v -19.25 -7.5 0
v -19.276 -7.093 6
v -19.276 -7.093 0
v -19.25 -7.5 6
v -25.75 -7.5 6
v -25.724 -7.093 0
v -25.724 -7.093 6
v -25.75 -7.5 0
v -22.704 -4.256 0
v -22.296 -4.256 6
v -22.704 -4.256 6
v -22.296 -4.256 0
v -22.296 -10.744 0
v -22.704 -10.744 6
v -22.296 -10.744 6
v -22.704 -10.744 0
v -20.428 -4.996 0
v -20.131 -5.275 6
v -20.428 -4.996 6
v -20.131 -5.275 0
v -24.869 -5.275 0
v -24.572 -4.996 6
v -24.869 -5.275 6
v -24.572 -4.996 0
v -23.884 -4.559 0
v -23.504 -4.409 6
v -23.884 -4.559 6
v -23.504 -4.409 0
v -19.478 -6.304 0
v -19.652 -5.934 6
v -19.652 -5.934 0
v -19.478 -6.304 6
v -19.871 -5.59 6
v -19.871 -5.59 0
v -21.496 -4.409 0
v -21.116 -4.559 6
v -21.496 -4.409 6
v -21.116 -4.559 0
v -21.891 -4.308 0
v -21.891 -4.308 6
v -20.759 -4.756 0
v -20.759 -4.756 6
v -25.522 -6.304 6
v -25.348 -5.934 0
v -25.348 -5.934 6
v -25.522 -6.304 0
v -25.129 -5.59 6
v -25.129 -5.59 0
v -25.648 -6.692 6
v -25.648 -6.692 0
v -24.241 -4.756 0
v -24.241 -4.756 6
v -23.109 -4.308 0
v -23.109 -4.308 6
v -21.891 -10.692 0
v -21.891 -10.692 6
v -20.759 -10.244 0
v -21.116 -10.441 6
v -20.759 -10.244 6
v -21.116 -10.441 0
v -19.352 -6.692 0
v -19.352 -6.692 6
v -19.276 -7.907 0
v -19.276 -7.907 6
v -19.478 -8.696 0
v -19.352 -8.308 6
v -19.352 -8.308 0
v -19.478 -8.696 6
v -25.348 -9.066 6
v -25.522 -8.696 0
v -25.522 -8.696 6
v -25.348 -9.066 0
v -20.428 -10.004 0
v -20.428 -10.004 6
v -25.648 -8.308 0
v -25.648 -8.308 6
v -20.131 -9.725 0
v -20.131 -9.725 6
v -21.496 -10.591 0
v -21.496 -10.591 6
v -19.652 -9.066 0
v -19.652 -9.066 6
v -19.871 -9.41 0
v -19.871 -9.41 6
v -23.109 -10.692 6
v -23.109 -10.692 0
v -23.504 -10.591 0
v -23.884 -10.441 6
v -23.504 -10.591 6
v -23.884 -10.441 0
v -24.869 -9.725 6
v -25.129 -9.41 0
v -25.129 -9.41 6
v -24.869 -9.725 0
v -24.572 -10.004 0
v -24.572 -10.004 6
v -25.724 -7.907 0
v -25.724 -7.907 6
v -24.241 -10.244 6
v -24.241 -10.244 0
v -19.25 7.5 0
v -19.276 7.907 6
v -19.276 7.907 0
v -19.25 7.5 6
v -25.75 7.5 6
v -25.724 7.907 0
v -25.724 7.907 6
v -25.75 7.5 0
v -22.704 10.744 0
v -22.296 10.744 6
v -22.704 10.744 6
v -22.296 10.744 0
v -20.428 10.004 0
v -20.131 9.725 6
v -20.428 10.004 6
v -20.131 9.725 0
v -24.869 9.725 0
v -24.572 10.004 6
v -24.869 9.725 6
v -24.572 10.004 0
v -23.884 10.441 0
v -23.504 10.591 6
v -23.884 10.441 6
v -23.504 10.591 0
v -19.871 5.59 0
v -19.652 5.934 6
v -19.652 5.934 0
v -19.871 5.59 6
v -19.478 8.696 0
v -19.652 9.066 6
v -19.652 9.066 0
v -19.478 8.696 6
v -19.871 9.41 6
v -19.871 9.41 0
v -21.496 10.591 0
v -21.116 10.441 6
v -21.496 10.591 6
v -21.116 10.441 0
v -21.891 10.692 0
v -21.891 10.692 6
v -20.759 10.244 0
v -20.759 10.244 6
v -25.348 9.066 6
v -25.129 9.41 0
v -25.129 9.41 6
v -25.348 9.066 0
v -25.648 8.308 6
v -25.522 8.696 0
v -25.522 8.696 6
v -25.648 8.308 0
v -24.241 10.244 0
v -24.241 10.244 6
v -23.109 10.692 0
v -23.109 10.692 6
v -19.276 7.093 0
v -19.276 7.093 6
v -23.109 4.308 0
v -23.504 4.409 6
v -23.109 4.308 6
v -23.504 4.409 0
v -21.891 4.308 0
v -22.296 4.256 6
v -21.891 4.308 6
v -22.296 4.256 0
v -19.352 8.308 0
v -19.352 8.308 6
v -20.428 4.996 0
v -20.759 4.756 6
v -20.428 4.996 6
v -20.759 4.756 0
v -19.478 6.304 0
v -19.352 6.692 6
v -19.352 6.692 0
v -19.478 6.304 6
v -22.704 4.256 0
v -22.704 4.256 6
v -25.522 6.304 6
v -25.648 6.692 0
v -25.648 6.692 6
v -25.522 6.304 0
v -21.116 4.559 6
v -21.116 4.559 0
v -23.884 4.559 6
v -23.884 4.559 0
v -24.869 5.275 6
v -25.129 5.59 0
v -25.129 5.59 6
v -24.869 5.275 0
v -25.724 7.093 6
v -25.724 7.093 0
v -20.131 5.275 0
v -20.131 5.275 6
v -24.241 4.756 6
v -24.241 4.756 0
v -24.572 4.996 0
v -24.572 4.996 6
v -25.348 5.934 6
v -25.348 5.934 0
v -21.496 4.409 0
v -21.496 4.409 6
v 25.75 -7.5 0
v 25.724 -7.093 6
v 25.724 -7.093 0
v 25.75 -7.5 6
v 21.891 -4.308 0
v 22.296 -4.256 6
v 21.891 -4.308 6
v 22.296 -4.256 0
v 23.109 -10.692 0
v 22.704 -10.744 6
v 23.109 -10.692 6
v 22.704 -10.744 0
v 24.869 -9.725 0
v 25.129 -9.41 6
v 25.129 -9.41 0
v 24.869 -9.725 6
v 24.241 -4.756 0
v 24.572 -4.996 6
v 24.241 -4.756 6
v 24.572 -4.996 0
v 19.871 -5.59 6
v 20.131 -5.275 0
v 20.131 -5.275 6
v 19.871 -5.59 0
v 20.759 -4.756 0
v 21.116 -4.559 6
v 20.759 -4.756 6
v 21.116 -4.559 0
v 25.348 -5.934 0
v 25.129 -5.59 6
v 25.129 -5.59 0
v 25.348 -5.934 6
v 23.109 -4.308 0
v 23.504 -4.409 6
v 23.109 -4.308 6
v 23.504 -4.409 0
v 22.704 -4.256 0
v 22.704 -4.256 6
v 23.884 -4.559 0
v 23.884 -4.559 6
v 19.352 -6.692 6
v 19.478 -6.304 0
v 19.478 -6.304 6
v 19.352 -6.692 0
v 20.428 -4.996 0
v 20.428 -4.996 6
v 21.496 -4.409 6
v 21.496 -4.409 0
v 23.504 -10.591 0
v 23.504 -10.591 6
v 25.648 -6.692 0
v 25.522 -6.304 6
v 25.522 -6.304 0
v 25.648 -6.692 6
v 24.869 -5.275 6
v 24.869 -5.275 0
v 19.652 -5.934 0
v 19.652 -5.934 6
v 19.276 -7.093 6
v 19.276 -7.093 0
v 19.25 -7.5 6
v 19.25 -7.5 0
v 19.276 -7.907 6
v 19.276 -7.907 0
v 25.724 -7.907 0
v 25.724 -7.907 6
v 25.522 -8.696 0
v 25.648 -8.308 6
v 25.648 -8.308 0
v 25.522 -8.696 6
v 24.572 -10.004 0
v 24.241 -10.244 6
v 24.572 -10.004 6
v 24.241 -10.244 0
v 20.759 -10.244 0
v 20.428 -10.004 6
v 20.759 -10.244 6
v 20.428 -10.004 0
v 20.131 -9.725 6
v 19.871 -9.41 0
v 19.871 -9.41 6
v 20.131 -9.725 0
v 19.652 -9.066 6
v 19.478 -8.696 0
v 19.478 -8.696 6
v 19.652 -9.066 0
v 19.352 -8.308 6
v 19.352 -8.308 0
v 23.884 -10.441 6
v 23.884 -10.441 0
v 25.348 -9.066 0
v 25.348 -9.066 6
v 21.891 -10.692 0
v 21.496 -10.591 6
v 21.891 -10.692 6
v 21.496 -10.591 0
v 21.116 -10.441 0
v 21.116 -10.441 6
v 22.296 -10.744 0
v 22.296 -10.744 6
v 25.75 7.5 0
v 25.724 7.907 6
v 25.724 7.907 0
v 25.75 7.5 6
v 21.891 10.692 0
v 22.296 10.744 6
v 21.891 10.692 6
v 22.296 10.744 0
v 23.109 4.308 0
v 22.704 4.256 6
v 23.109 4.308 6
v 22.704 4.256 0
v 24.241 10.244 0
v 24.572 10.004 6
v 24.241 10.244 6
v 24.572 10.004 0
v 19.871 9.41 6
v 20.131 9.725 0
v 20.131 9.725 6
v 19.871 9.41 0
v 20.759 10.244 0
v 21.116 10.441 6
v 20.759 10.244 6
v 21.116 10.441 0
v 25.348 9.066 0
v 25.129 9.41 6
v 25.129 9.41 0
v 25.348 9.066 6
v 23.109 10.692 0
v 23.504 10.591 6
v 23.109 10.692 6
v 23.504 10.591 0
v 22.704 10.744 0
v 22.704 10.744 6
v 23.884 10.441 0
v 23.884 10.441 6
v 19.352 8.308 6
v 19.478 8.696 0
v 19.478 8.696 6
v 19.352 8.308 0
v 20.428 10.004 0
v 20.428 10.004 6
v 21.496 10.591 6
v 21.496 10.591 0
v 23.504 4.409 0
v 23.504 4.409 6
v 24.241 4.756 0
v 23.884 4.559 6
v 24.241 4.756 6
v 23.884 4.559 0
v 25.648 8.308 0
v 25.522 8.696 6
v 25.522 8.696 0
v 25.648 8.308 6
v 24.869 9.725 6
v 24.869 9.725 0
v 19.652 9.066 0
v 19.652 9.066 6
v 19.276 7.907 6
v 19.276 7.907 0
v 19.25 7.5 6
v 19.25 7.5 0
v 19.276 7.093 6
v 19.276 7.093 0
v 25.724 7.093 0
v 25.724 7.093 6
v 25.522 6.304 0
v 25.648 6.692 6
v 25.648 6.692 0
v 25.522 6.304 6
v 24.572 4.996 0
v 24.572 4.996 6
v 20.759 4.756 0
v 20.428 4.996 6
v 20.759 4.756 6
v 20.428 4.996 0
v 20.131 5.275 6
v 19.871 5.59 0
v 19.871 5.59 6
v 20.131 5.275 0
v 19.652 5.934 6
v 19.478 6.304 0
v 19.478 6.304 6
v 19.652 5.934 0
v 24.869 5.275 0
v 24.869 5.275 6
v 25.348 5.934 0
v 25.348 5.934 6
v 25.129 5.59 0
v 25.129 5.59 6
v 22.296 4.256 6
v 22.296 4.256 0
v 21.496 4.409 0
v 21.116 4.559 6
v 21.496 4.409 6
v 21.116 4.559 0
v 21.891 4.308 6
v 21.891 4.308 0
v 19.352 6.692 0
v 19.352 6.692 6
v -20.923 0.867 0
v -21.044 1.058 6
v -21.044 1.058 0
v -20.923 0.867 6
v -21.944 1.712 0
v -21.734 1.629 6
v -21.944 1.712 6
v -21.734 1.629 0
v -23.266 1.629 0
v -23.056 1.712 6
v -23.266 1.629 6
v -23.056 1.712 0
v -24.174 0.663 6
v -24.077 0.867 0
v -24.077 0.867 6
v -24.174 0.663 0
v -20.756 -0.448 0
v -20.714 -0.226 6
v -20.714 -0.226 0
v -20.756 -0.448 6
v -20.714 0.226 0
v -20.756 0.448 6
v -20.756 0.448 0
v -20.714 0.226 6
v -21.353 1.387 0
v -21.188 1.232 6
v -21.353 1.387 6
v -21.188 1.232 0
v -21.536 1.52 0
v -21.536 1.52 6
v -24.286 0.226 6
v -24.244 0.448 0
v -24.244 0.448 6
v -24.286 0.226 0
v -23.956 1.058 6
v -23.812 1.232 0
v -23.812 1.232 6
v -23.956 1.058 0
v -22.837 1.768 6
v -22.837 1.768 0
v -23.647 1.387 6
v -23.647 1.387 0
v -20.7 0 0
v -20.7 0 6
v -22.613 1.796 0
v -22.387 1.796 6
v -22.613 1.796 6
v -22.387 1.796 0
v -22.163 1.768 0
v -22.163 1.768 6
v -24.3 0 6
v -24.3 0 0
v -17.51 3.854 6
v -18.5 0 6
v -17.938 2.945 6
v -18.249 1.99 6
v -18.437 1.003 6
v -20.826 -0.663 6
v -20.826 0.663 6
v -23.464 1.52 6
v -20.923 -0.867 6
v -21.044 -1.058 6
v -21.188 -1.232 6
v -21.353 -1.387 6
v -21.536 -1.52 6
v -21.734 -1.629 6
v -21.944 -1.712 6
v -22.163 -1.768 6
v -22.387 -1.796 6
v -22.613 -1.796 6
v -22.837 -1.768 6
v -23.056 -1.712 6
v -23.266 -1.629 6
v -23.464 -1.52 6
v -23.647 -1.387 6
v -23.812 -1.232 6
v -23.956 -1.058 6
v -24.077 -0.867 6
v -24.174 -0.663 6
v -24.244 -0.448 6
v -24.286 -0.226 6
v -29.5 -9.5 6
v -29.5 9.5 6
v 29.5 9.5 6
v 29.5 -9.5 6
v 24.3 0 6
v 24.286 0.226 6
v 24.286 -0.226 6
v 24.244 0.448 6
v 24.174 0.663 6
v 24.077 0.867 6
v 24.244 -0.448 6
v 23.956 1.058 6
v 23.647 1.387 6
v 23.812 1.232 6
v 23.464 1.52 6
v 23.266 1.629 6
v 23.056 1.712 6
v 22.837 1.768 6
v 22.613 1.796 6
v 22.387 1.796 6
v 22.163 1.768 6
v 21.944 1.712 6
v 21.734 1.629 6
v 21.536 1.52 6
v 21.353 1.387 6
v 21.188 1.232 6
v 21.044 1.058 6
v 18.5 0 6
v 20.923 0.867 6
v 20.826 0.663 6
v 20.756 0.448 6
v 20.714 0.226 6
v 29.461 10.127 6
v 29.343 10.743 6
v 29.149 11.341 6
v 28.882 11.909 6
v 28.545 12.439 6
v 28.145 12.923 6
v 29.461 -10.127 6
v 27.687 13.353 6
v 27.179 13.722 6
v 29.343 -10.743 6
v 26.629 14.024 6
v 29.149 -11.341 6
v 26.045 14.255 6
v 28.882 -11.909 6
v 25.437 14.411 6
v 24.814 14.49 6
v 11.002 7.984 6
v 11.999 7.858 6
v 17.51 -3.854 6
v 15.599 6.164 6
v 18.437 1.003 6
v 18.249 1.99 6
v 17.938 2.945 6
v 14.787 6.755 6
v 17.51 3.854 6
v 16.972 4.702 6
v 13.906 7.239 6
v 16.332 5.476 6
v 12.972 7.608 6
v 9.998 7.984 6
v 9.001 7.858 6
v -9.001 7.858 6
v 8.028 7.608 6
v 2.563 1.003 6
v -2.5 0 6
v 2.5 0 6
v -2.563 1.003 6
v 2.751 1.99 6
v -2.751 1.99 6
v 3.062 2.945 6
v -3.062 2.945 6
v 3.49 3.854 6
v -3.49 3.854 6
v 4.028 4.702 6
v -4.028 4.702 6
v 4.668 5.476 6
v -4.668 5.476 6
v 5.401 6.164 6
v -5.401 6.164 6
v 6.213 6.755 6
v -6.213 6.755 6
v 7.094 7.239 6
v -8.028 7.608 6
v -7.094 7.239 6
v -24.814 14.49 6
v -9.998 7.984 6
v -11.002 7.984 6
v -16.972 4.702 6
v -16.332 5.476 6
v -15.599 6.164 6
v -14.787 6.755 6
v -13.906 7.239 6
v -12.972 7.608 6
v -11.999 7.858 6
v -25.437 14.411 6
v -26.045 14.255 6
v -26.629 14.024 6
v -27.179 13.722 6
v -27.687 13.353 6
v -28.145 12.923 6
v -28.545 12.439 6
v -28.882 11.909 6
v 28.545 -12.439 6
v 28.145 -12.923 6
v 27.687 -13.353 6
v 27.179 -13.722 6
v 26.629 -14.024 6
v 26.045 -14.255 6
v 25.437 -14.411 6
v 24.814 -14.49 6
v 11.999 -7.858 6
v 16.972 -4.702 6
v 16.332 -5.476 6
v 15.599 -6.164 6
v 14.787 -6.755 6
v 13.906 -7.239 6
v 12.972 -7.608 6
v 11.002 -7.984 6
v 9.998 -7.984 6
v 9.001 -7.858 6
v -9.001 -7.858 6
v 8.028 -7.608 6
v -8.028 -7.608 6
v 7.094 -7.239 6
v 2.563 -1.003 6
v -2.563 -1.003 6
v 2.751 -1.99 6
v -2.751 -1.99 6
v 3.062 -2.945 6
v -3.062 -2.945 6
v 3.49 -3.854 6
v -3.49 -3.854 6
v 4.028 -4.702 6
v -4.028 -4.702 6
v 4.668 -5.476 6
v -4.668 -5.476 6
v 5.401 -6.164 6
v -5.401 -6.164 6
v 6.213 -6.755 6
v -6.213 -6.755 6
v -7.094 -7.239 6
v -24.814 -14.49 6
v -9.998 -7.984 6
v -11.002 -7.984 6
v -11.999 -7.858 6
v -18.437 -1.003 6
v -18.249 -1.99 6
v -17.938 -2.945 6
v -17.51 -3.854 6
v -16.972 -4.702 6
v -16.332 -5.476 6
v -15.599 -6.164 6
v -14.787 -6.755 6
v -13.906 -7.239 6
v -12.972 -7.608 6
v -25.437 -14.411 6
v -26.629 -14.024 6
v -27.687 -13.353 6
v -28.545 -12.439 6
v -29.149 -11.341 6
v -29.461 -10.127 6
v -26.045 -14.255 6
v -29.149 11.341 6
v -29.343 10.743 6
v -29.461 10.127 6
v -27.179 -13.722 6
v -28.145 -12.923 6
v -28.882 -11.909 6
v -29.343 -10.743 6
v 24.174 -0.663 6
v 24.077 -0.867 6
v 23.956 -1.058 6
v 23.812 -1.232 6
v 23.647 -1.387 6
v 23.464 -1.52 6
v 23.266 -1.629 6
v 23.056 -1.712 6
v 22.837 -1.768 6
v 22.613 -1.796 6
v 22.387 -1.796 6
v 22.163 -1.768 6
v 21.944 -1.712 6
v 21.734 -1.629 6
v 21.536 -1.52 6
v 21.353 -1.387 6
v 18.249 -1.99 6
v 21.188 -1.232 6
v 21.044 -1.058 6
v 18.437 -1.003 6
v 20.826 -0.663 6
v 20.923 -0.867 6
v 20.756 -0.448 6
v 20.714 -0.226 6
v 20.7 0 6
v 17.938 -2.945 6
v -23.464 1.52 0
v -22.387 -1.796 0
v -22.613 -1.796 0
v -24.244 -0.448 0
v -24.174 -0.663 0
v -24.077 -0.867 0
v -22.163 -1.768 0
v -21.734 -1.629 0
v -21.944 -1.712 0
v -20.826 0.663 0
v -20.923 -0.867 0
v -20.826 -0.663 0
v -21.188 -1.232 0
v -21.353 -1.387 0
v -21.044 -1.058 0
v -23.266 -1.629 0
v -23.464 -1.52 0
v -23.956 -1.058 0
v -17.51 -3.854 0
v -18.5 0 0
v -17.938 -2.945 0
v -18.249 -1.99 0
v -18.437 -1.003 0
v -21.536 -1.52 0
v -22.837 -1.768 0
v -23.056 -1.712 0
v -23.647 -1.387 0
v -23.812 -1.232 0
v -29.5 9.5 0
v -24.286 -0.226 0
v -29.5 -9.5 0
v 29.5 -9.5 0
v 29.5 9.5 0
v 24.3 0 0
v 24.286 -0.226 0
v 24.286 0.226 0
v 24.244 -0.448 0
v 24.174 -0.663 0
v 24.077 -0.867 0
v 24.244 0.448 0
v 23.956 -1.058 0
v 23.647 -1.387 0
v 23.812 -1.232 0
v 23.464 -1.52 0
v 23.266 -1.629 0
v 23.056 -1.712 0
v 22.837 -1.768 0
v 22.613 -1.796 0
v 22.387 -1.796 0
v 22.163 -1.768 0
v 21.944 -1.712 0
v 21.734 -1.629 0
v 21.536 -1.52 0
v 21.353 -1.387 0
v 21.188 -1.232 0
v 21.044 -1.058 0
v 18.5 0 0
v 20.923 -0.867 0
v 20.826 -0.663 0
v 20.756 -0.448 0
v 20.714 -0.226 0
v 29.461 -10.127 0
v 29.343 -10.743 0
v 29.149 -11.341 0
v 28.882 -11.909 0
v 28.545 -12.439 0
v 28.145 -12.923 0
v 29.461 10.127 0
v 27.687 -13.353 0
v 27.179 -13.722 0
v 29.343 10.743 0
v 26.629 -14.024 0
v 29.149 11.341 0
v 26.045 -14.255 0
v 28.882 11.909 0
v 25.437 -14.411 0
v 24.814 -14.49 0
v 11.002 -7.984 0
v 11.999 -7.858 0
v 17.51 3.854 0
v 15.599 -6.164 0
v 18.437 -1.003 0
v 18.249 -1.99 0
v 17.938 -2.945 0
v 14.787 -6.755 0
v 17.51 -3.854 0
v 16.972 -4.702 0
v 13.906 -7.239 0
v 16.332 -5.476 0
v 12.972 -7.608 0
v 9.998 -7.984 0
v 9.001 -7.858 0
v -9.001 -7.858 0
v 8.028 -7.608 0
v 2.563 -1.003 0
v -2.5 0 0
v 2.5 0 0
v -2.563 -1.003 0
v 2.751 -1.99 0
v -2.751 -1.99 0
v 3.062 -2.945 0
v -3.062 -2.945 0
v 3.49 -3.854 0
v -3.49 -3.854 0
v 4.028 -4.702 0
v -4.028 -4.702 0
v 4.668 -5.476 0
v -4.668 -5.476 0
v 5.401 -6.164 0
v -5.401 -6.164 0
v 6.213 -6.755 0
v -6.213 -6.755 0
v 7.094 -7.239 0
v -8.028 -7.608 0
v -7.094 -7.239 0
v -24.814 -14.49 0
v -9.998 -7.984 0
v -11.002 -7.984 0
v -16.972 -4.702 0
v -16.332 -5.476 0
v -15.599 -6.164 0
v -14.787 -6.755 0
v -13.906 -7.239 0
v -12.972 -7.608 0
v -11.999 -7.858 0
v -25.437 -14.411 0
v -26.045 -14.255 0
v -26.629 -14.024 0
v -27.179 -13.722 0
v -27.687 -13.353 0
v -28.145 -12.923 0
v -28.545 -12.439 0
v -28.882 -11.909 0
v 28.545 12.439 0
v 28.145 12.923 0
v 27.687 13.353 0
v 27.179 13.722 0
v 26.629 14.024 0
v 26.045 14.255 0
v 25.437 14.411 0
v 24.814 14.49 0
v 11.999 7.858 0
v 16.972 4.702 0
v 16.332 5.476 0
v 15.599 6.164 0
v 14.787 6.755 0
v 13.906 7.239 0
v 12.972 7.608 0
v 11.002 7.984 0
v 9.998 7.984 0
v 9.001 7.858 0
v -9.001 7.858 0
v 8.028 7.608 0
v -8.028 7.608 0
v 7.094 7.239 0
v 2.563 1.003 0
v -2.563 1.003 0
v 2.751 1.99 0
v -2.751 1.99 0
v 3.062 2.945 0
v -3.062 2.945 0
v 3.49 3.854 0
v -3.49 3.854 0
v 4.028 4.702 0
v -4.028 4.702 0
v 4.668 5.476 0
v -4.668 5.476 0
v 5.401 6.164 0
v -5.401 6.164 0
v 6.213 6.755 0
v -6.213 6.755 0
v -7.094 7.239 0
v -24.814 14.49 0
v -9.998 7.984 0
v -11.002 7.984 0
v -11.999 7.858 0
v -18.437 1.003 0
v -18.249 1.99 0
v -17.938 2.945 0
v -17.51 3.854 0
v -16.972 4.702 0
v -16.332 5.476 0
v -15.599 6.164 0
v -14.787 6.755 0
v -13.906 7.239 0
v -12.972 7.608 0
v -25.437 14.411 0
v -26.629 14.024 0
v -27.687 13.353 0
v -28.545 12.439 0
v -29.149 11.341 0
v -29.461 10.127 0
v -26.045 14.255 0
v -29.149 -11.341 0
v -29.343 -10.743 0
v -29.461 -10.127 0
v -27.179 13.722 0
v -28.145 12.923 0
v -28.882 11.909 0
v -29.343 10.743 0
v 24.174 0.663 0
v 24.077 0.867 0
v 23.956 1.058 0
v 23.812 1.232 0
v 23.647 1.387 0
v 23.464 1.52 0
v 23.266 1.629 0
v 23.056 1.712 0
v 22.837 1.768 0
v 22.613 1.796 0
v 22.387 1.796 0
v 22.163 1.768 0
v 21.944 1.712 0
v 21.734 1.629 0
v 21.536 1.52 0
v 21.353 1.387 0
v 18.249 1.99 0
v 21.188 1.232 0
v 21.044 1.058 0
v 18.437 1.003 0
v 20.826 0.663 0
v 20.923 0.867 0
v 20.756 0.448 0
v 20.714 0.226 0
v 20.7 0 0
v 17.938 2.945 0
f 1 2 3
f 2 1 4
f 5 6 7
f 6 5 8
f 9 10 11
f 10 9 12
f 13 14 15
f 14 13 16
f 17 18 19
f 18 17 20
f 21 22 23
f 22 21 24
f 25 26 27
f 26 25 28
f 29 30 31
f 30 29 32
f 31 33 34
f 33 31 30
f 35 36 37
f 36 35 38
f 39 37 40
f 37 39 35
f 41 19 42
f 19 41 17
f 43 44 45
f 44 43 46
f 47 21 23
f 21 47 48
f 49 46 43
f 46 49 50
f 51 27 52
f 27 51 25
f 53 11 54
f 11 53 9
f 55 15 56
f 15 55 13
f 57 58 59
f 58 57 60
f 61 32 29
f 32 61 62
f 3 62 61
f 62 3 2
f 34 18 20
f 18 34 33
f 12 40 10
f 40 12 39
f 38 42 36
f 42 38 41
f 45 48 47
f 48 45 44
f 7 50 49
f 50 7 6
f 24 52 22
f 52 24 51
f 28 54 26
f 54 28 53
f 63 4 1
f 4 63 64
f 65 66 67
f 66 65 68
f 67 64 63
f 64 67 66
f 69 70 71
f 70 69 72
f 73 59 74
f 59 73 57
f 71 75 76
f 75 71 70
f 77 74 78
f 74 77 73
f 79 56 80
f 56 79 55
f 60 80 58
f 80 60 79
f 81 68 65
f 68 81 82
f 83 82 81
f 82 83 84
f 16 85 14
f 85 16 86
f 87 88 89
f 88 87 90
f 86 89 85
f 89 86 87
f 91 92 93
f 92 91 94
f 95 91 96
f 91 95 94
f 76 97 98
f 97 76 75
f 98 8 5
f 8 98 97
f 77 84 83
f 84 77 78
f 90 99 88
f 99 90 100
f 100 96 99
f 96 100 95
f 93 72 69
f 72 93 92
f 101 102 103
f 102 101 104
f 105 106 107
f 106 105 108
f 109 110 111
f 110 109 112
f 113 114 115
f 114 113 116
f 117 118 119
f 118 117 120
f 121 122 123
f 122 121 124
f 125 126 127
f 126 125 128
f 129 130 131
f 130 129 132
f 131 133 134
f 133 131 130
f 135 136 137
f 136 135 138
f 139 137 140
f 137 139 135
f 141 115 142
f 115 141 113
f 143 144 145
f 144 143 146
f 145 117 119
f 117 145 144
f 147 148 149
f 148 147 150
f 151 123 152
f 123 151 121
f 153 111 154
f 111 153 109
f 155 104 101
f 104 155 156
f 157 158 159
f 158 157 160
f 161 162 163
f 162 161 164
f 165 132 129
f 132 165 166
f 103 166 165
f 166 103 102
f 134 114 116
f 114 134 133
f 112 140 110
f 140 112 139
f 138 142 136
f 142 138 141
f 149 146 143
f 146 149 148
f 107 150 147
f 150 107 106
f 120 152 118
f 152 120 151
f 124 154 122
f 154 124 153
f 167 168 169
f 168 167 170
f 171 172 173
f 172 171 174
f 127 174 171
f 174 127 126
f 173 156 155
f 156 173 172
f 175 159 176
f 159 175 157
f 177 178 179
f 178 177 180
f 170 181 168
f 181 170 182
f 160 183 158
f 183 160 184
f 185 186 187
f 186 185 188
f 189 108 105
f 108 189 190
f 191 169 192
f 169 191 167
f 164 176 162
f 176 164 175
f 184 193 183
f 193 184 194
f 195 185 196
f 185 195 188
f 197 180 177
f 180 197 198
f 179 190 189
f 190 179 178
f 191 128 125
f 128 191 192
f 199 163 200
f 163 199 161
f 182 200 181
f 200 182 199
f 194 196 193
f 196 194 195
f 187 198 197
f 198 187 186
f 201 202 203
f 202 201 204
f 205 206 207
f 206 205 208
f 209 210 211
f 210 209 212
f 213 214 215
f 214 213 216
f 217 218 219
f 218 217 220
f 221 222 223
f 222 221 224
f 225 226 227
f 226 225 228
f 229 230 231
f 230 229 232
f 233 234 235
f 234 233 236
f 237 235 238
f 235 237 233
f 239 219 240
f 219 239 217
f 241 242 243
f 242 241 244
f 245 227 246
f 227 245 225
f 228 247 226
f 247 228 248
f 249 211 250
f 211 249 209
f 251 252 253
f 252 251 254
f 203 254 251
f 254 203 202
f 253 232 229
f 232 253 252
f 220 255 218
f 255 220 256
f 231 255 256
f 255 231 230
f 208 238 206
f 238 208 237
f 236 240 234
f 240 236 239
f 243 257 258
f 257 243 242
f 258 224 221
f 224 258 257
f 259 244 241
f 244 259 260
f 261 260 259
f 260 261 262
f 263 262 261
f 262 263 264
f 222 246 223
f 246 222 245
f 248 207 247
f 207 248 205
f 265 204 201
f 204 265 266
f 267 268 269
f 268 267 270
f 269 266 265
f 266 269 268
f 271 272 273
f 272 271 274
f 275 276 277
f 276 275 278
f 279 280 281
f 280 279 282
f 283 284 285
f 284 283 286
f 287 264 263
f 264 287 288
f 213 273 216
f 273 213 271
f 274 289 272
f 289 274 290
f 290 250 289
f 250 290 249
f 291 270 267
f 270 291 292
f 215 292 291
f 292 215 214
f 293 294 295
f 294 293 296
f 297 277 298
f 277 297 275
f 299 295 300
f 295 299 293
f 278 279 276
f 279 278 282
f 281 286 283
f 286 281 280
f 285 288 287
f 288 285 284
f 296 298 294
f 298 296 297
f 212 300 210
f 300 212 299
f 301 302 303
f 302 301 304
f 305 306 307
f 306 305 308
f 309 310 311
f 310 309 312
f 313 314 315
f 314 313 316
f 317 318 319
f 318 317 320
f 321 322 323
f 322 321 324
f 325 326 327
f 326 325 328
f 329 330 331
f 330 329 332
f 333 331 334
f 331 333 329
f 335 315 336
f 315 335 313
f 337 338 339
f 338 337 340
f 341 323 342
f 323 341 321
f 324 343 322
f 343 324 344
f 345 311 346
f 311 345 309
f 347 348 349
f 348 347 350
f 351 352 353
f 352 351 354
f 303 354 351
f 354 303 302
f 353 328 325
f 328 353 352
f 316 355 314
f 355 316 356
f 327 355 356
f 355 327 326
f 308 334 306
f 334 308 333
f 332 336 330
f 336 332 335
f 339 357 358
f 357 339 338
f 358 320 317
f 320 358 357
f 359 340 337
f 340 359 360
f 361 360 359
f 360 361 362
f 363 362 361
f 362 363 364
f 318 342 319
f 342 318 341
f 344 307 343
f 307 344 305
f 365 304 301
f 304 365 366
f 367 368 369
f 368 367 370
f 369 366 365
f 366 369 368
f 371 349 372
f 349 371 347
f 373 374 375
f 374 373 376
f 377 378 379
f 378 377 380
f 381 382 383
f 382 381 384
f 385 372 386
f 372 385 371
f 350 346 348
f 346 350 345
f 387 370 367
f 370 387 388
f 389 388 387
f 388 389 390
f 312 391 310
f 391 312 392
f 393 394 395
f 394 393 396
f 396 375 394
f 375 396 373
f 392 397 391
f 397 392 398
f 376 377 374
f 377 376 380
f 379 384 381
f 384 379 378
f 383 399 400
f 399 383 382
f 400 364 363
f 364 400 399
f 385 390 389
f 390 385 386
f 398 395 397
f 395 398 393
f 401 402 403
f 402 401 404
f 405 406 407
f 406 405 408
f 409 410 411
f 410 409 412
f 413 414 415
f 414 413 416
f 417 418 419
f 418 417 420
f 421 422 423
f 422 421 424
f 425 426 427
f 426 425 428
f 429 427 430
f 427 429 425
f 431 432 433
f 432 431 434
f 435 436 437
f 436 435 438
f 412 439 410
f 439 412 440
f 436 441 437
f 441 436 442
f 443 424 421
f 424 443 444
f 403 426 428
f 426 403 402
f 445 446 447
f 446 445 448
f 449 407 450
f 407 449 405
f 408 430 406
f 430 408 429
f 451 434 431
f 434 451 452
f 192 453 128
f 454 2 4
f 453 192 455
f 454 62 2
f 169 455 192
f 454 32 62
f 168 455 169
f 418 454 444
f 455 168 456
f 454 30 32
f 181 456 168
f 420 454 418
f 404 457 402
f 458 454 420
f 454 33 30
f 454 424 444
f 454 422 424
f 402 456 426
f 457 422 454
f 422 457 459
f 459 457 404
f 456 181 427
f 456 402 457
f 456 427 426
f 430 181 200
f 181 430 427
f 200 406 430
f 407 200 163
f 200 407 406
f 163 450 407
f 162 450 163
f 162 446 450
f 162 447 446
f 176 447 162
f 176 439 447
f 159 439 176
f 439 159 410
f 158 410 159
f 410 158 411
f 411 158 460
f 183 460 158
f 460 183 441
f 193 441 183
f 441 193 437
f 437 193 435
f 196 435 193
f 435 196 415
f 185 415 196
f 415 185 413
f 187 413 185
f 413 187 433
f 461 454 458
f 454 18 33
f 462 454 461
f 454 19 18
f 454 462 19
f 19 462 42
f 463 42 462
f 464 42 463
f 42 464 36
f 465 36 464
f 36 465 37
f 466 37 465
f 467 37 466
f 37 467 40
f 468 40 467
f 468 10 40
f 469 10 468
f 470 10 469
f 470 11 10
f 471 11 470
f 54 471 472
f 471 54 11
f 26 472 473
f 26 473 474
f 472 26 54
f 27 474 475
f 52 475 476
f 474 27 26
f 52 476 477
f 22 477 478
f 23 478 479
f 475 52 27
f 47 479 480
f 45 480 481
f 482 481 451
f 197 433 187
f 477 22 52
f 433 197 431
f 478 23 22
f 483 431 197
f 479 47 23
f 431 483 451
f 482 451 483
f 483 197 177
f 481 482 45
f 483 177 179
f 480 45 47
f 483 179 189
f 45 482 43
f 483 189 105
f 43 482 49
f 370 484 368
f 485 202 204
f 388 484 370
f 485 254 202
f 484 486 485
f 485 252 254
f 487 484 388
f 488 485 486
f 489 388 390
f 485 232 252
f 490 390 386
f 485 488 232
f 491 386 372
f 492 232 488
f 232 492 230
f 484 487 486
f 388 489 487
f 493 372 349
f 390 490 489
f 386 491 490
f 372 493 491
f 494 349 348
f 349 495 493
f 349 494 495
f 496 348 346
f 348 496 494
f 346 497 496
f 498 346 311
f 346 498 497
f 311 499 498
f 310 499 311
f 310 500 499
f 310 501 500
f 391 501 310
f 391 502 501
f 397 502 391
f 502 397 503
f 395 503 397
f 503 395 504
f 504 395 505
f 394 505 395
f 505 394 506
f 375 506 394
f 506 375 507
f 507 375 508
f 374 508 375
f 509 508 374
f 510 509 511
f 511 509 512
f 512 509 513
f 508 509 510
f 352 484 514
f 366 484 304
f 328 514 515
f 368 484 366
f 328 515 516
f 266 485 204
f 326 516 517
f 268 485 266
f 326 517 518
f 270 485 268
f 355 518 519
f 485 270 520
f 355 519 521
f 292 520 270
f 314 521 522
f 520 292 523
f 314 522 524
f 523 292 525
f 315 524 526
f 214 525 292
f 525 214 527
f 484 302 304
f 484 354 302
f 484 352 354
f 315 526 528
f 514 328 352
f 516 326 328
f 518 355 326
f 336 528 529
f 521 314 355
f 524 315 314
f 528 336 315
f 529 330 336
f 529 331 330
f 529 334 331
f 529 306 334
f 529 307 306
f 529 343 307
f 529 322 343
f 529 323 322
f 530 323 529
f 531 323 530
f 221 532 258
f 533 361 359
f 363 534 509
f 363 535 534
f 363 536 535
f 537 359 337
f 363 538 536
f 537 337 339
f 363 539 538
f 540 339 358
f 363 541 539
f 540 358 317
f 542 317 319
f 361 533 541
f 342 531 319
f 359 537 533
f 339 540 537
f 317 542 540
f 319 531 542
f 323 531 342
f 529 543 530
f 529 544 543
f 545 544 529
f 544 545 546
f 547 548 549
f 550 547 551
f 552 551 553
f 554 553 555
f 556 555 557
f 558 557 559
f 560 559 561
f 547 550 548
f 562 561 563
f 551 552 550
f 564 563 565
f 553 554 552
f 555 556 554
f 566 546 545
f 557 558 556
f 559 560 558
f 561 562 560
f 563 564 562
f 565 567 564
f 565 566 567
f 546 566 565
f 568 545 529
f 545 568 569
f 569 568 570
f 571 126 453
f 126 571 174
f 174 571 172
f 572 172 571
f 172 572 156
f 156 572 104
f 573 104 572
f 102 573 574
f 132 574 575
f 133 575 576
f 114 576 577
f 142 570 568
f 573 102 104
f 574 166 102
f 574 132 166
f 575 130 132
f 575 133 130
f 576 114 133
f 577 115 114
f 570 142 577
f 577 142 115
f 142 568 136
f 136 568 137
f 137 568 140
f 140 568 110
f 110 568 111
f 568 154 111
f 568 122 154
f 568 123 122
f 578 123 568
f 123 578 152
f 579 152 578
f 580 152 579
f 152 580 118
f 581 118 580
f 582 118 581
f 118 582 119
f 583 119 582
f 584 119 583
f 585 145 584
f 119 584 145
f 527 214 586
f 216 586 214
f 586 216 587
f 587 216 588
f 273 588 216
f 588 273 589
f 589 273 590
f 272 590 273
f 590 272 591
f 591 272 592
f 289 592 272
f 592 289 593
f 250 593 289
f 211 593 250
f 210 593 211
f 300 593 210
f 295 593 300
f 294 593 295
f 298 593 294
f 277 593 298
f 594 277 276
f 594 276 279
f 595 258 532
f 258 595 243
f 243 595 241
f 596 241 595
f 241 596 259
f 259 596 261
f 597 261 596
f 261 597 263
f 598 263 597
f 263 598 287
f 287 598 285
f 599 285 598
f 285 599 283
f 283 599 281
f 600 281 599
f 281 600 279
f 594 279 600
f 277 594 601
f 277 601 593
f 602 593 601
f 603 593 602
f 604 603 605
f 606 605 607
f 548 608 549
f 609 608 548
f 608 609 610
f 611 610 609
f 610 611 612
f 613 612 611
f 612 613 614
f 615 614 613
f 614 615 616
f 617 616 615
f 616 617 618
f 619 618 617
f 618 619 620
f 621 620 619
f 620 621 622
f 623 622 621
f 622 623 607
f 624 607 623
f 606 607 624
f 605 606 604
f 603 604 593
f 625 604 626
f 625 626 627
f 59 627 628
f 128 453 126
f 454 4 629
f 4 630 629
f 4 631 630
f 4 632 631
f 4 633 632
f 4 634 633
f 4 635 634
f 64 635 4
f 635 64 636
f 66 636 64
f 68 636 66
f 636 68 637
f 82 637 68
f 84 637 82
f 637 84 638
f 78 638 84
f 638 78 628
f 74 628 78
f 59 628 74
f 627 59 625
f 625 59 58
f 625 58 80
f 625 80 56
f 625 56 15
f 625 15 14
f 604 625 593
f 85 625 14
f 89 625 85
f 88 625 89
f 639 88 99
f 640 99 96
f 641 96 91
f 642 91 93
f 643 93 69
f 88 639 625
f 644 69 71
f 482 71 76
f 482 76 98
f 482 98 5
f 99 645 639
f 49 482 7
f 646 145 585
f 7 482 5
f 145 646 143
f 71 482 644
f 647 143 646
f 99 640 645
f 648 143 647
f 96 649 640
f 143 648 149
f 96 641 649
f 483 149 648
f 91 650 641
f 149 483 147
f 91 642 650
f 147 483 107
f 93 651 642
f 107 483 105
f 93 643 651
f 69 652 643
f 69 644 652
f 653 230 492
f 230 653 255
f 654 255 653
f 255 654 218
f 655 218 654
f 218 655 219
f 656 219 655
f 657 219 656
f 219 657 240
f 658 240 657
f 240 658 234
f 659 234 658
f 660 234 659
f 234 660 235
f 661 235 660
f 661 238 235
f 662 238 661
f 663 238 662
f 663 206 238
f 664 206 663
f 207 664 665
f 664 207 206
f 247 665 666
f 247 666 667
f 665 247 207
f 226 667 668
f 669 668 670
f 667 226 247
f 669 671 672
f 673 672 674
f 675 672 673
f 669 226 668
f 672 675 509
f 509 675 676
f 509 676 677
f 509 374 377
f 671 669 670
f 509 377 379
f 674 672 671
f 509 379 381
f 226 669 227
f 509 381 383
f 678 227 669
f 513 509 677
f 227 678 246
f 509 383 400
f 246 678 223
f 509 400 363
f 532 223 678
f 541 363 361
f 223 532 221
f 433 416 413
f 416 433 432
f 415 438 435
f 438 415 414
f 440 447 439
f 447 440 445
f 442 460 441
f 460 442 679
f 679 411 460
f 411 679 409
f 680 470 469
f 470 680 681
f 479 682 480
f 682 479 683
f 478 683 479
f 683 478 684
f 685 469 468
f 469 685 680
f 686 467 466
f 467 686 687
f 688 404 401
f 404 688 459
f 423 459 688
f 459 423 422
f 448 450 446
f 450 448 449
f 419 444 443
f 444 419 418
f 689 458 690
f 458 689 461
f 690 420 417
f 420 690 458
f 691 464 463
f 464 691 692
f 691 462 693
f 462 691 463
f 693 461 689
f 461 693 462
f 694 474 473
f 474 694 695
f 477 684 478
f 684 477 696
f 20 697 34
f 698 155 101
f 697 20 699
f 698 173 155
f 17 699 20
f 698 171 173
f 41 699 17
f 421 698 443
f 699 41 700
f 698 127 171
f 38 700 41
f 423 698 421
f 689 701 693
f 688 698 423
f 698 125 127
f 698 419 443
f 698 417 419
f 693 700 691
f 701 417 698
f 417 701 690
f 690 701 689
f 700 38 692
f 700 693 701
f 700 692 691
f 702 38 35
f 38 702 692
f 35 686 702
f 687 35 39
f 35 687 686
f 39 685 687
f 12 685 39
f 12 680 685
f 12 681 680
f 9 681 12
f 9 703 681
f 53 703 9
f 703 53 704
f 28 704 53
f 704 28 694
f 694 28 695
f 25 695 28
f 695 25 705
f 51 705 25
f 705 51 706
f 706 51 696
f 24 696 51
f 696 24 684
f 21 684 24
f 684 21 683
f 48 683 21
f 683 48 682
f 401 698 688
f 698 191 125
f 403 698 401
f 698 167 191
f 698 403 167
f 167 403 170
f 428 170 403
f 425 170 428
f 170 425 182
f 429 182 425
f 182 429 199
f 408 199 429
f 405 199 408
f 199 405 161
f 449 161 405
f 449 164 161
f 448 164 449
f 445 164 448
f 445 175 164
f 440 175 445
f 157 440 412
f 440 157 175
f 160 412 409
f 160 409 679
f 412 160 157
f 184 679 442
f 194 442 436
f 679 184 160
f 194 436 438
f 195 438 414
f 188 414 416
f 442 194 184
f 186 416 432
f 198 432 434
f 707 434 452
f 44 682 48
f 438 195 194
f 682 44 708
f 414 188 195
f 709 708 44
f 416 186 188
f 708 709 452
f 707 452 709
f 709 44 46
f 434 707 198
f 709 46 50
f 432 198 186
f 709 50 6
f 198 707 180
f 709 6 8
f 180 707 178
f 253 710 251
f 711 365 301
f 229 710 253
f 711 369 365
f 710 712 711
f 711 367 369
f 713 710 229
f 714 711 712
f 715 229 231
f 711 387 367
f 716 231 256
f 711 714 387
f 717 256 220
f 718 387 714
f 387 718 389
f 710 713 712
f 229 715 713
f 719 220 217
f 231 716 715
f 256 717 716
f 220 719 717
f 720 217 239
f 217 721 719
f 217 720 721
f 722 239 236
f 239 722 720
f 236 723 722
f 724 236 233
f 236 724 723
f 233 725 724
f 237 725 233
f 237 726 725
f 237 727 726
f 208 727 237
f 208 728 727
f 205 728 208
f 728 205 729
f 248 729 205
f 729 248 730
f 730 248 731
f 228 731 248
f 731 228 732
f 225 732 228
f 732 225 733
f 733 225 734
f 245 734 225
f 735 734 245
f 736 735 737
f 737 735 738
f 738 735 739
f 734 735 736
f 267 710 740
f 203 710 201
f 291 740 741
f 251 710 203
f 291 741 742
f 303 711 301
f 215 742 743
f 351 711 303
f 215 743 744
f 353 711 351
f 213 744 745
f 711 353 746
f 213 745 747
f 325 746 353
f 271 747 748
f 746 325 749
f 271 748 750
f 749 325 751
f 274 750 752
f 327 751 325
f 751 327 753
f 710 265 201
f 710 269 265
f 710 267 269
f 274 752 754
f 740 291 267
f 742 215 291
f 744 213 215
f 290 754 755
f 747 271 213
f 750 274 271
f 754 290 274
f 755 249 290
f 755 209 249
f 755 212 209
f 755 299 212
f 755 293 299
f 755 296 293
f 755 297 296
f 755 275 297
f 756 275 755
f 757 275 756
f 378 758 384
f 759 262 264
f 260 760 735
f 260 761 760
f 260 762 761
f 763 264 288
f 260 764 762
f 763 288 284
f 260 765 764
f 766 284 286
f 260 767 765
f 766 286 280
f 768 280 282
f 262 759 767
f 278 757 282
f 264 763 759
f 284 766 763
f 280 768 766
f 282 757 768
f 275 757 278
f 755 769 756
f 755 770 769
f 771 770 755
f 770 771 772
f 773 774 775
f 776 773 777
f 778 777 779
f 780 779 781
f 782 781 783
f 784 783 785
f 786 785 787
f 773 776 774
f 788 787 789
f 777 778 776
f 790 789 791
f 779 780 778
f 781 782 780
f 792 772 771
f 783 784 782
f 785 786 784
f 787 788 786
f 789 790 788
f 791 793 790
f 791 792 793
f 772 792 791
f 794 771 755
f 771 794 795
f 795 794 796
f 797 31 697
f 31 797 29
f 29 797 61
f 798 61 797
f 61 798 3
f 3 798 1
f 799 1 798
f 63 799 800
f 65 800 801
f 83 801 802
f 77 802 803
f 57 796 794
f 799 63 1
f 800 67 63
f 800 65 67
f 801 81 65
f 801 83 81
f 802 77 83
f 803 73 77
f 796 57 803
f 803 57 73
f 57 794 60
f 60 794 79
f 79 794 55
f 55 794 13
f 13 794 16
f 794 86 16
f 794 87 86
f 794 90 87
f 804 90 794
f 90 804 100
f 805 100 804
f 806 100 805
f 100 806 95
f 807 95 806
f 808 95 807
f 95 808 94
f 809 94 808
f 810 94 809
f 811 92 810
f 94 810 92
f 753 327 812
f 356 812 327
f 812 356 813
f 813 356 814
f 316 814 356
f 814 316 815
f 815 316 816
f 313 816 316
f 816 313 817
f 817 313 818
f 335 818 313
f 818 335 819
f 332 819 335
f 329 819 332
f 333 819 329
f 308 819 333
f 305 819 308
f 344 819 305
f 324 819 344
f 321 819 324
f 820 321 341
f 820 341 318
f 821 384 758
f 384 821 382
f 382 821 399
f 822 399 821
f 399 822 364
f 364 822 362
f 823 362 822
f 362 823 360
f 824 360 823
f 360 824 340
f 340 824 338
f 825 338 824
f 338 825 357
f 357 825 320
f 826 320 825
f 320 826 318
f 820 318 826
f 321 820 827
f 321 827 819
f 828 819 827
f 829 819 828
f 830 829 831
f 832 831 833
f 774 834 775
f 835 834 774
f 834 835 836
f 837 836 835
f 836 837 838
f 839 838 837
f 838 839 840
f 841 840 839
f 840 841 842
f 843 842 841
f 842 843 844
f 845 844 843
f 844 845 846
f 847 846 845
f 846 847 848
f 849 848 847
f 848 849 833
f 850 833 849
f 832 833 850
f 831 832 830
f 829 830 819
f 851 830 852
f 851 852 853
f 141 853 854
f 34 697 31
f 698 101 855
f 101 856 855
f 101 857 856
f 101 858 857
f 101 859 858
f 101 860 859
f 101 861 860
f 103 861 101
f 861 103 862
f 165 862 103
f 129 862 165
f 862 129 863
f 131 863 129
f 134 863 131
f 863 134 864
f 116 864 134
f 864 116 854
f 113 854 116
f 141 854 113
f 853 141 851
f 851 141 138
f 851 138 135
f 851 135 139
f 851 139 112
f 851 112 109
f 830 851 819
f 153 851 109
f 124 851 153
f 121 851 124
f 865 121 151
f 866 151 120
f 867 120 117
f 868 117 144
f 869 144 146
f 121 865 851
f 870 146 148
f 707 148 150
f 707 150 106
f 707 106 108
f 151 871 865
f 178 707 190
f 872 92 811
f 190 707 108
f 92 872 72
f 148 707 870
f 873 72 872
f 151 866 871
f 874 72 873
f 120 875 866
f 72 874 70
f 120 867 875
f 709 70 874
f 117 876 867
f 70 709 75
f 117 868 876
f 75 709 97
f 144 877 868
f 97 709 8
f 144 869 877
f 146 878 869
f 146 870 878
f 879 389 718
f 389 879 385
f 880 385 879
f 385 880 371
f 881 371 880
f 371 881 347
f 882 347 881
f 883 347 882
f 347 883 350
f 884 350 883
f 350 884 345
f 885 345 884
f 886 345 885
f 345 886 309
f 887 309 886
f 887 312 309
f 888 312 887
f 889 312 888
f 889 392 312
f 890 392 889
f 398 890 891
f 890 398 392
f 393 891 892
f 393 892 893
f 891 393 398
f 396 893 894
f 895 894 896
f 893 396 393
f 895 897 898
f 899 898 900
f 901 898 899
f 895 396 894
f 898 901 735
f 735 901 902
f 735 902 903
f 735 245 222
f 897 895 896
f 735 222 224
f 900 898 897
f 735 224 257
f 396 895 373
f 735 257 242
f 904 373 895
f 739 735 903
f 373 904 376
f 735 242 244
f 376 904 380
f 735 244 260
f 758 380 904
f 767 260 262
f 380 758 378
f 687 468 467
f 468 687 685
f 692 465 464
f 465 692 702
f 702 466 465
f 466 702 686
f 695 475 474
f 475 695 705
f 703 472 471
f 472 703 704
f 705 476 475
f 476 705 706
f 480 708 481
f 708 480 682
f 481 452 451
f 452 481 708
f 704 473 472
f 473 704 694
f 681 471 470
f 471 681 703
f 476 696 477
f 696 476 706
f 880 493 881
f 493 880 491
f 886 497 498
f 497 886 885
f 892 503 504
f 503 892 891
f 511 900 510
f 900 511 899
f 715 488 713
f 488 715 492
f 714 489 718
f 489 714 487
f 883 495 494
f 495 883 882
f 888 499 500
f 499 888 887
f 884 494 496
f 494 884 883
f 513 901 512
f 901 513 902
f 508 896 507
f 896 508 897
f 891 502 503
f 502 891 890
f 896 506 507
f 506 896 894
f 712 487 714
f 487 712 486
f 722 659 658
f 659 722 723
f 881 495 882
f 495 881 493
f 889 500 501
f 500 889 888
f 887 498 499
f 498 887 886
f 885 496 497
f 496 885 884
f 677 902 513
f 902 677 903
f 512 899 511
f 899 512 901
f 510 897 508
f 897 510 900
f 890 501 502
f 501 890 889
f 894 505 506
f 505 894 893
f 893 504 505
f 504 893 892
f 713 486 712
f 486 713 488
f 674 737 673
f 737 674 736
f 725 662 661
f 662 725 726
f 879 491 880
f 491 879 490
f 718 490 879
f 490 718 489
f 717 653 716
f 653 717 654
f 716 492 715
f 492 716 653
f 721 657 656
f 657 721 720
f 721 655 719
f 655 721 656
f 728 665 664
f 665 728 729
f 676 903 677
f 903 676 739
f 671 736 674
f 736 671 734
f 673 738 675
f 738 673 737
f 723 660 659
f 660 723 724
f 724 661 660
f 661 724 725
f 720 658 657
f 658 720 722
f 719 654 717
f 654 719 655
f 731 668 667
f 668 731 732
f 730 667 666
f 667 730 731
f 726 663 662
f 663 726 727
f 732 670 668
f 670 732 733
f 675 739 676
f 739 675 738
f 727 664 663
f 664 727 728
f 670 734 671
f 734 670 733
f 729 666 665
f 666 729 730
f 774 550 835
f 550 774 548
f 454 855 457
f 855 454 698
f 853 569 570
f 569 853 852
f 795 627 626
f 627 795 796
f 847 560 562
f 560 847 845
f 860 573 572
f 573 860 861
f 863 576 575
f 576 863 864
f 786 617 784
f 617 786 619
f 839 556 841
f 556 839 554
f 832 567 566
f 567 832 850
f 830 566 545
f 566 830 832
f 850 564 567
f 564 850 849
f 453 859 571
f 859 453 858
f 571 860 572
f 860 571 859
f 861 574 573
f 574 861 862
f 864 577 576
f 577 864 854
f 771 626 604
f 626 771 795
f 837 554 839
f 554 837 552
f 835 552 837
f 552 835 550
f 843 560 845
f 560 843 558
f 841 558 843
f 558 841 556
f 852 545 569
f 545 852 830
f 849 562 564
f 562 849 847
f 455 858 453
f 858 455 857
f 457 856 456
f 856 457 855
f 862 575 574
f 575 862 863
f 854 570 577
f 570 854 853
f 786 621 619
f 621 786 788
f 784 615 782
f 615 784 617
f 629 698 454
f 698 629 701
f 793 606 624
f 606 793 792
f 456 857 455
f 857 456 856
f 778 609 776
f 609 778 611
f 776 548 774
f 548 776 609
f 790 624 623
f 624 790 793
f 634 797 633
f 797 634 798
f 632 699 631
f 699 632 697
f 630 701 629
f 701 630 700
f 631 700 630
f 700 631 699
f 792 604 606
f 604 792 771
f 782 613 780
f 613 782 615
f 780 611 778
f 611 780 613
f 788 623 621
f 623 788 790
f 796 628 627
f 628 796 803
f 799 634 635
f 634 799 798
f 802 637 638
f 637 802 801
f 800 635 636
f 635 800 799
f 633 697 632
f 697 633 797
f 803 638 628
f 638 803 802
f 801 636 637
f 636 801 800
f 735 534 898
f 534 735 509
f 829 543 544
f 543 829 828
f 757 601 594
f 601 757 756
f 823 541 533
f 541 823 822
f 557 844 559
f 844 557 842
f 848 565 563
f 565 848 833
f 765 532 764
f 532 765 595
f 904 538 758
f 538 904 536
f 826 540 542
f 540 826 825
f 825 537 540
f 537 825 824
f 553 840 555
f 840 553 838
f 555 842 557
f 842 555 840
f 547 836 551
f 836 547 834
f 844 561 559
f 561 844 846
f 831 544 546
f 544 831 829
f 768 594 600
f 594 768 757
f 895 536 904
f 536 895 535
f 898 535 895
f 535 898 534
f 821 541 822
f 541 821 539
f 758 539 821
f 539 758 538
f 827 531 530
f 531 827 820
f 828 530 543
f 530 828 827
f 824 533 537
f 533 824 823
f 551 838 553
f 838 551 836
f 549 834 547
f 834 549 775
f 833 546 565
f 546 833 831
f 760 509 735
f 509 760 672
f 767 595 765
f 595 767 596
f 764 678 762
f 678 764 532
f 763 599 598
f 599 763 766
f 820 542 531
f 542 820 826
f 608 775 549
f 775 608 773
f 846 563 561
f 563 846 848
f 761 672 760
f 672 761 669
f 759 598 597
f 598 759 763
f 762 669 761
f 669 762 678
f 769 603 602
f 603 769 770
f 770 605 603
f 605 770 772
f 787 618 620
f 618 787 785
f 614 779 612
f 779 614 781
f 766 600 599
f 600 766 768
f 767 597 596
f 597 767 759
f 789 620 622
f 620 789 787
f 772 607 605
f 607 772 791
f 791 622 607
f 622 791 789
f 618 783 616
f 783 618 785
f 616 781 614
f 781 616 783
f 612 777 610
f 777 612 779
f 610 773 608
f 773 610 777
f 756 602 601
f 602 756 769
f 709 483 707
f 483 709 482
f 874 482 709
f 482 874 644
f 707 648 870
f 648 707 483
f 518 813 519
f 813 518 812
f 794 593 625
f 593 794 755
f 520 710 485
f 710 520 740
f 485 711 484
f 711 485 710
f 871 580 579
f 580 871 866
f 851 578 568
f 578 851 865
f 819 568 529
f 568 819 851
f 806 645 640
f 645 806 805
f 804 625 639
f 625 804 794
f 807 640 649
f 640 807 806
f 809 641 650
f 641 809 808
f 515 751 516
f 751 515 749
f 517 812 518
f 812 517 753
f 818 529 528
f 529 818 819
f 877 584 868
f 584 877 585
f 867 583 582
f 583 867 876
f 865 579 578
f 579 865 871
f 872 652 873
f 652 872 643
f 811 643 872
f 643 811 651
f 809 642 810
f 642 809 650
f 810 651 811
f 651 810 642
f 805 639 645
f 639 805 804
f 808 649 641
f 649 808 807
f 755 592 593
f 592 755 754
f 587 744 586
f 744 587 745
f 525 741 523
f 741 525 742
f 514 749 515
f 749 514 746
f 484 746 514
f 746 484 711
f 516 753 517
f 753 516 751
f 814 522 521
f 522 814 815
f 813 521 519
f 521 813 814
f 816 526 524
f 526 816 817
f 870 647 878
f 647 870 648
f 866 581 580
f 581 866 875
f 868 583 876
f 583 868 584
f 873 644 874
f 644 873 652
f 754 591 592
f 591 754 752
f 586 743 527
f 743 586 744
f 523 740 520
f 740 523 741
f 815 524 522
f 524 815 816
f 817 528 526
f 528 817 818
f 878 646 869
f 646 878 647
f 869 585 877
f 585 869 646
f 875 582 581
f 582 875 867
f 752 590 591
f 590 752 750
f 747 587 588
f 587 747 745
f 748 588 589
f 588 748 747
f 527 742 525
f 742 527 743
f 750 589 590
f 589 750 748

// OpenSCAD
$fn = 50;


difference() {
	union() {
		hull() {
			translate(v = [-24.5000000000, 9.5000000000, 0]) {
				cylinder(h = 6, r = 5);
			}
			translate(v = [24.5000000000, 9.5000000000, 0]) {
				cylinder(h = 6, r = 5);
			}
			translate(v = [-24.5000000000, -9.5000000000, 0]) {
				cylinder(h = 6, r = 5);
			}
			translate(v = [24.5000000000, -9.5000000000, 0]) {
				cylinder(h = 6, r = 5);
			}
		}
	}
	union() {
		#translate(v = [-22.5000000000, -7.5000000000, 0]) {
			cylinder(h = 6, r = 3.2500000000);
		}
		#translate(v = [-22.5000000000, 7.5000000000, 0]) {
			cylinder(h = 6, r = 3.2500000000);
		}
		#translate(v = [22.5000000000, -7.5000000000, 0]) {
			cylinder(h = 6, r = 3.2500000000);
		}
		#translate(v = [22.5000000000, 7.5000000000, 0]) {
			cylinder(h = 6, r = 3.2500000000);
		}
		#translate(v = [-22.5000000000, -7.5000000000, -100.0000000000]) {
			cylinder(h = 200, r = 3.2500000000);
		}
		#translate(v = [-22.5000000000, 7.5000000000, -100.0000000000]) {
			cylinder(h = 200, r = 3.2500000000);
		}
		#translate(v = [22.5000000000, -7.5000000000, -100.0000000000]) {
			cylinder(h = 200, r = 3.2500000000);
		}
		#translate(v = [22.5000000000, 7.5000000000, -100.0000000000]) {
			cylinder(h = 200, r = 3.2500000000);
		}
		#translate(v = [-22.5000000000, -7.5000000000, 0]) {
			cylinder(h = 6, r = 1.8000000000);
		}
		#translate(v = [-22.5000000000, 0.0000000000, 0]) {
			cylinder(h = 6, r = 1.8000000000);
		}
		#translate(v = [-22.5000000000, 7.5000000000, 0]) {
			cylinder(h = 6, r = 1.8000000000);
		}
		#translate(v = [22.5000000000, -7.5000000000, 0]) {
			cylinder(h = 6, r = 1.8000000000);
		}
		#translate(v = [22.5000000000, 0.0000000000, 0]) {
			cylinder(h = 6, r = 1.8000000000);
		}
		#translate(v = [22.5000000000, 7.5000000000, 0]) {
			cylinder(h = 6, r = 1.8000000000);
		}
		#translate(v = [-22.5000000000, -7.5000000000, 0]) {
			cylinder(h = 6, r = 1.8000000000);
		}
		#translate(v = [-22.5000000000, 0.0000000000, 0]) {
			cylinder(h = 6, r = 1.8000000000);
		}
		#translate(v = [-22.5000000000, 7.5000000000, 0]) {
			cylinder(h = 6, r = 1.8000000000);
		}
		#translate(v = [22.5000000000, -7.5000000000, 0]) {
			cylinder(h = 6, r = 1.8000000000);
		}
		#translate(v = [22.5000000000, 0.0000000000, 0]) {
			cylinder(h = 6, r = 1.8000000000);
		}
		#translate(v = [22.5000000000, 7.5000000000, 0]) {
			cylinder(h = 6, r = 1.8000000000);
		}
		#translate(v = [-22.5000000000, -7.5000000000, 0]) {
			cylinder(h = 6, r = 1.8000000000);
		}
		#translate(v = [-22.5000000000, 0.0000000000, 0]) {
			cylinder(h = 6, r = 1.8000000000);
		}
		#translate(v = [-22.5000000000, 7.5000000000, 0]) {
			cylinder(h = 6, r = 1.8000000000);
		}
		#translate(v = [22.5000000000, -7.5000000000, 0]) {
			cylinder(h = 6, r = 1.8000000000);
		}
		#translate(v = [22.5000000000, 0.0000000000, 0]) {
			cylinder(h = 6, r = 1.8000000000);
		}
		#translate(v = [22.5000000000, 7.5000000000, 0]) {
			cylinder(h = 6, r = 1.8000000000);
		}
		#translate(v = [-10.5000000000, 0, 0]) {
			cylinder(h = 6, r = 8.0000000000);
		}
		#translate(v = [10.5000000000, 0, 0]) {
			cylinder(h = 6, r = 8.0000000000);
		}
	}
}
